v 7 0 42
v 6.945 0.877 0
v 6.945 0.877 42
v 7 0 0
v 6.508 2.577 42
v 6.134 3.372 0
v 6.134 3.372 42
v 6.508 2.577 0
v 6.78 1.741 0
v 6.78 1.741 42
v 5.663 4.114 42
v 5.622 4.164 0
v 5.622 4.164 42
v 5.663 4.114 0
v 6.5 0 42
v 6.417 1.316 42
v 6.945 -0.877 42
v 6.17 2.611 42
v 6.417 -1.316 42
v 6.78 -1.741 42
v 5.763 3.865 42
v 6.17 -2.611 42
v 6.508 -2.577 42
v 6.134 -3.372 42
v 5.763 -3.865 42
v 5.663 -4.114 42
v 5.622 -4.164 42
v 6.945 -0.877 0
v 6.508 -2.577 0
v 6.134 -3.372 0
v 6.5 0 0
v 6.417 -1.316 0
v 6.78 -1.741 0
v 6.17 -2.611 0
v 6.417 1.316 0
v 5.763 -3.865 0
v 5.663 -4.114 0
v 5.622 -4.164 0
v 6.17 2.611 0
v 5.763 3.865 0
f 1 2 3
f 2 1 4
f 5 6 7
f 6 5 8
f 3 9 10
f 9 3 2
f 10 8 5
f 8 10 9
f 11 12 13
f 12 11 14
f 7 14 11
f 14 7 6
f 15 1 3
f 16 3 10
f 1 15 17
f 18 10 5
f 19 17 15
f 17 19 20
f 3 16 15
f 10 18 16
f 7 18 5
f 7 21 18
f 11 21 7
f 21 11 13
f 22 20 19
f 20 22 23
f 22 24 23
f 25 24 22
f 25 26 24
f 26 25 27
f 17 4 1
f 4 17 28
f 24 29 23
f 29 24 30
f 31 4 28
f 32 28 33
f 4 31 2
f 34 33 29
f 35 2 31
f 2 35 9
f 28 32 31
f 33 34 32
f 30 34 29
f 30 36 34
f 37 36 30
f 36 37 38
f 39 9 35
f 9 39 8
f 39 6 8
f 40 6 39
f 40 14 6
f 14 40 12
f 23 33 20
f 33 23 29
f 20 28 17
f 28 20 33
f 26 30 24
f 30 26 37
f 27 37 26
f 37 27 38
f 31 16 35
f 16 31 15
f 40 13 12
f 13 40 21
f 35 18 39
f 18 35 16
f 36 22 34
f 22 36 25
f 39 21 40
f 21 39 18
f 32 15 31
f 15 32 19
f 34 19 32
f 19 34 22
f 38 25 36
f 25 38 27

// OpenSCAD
$fn = 50;


difference() {
	union() {
		cylinder(h = 42, r = 7.0000000000);
		translate(v = [-7.0000000000, 0, 0]) {
			cylinder(h = 42, r = 7.0000000000);
		}
	}
	union() {
		cylinder(h = 42, r = 3.2500000000);
		cylinder(h = 42, r = 1.8000000000);
		cylinder(h = 42, r = 1.8000000000);
		cylinder(h = 42, r = 1.8000000000);
		translate(v = [-11.5000000000, 0, 0]) {
			hull() {
				translate(v = [-3.7500000000, 0.0000000000, 0]) {
					cylinder(h = 42, r = 10.5000000000);
				}
				translate(v = [3.7500000000, 0.0000000000, 0]) {
					cylinder(h = 42, r = 10.5000000000);
				}
				translate(v = [-3.7500000000, -0.0000000000, 0]) {
					cylinder(h = 42, r = 10.5000000000);
				}
				translate(v = [3.7500000000, -0.0000000000, 0]) {
					cylinder(h = 42, r = 10.5000000000);
				}
			}
		}
		translate(v = [-4.0000000000, 0, 0.0000000000]) {
			cylinder(h = 42, r = 10.5000000000);
		}
	}
}
